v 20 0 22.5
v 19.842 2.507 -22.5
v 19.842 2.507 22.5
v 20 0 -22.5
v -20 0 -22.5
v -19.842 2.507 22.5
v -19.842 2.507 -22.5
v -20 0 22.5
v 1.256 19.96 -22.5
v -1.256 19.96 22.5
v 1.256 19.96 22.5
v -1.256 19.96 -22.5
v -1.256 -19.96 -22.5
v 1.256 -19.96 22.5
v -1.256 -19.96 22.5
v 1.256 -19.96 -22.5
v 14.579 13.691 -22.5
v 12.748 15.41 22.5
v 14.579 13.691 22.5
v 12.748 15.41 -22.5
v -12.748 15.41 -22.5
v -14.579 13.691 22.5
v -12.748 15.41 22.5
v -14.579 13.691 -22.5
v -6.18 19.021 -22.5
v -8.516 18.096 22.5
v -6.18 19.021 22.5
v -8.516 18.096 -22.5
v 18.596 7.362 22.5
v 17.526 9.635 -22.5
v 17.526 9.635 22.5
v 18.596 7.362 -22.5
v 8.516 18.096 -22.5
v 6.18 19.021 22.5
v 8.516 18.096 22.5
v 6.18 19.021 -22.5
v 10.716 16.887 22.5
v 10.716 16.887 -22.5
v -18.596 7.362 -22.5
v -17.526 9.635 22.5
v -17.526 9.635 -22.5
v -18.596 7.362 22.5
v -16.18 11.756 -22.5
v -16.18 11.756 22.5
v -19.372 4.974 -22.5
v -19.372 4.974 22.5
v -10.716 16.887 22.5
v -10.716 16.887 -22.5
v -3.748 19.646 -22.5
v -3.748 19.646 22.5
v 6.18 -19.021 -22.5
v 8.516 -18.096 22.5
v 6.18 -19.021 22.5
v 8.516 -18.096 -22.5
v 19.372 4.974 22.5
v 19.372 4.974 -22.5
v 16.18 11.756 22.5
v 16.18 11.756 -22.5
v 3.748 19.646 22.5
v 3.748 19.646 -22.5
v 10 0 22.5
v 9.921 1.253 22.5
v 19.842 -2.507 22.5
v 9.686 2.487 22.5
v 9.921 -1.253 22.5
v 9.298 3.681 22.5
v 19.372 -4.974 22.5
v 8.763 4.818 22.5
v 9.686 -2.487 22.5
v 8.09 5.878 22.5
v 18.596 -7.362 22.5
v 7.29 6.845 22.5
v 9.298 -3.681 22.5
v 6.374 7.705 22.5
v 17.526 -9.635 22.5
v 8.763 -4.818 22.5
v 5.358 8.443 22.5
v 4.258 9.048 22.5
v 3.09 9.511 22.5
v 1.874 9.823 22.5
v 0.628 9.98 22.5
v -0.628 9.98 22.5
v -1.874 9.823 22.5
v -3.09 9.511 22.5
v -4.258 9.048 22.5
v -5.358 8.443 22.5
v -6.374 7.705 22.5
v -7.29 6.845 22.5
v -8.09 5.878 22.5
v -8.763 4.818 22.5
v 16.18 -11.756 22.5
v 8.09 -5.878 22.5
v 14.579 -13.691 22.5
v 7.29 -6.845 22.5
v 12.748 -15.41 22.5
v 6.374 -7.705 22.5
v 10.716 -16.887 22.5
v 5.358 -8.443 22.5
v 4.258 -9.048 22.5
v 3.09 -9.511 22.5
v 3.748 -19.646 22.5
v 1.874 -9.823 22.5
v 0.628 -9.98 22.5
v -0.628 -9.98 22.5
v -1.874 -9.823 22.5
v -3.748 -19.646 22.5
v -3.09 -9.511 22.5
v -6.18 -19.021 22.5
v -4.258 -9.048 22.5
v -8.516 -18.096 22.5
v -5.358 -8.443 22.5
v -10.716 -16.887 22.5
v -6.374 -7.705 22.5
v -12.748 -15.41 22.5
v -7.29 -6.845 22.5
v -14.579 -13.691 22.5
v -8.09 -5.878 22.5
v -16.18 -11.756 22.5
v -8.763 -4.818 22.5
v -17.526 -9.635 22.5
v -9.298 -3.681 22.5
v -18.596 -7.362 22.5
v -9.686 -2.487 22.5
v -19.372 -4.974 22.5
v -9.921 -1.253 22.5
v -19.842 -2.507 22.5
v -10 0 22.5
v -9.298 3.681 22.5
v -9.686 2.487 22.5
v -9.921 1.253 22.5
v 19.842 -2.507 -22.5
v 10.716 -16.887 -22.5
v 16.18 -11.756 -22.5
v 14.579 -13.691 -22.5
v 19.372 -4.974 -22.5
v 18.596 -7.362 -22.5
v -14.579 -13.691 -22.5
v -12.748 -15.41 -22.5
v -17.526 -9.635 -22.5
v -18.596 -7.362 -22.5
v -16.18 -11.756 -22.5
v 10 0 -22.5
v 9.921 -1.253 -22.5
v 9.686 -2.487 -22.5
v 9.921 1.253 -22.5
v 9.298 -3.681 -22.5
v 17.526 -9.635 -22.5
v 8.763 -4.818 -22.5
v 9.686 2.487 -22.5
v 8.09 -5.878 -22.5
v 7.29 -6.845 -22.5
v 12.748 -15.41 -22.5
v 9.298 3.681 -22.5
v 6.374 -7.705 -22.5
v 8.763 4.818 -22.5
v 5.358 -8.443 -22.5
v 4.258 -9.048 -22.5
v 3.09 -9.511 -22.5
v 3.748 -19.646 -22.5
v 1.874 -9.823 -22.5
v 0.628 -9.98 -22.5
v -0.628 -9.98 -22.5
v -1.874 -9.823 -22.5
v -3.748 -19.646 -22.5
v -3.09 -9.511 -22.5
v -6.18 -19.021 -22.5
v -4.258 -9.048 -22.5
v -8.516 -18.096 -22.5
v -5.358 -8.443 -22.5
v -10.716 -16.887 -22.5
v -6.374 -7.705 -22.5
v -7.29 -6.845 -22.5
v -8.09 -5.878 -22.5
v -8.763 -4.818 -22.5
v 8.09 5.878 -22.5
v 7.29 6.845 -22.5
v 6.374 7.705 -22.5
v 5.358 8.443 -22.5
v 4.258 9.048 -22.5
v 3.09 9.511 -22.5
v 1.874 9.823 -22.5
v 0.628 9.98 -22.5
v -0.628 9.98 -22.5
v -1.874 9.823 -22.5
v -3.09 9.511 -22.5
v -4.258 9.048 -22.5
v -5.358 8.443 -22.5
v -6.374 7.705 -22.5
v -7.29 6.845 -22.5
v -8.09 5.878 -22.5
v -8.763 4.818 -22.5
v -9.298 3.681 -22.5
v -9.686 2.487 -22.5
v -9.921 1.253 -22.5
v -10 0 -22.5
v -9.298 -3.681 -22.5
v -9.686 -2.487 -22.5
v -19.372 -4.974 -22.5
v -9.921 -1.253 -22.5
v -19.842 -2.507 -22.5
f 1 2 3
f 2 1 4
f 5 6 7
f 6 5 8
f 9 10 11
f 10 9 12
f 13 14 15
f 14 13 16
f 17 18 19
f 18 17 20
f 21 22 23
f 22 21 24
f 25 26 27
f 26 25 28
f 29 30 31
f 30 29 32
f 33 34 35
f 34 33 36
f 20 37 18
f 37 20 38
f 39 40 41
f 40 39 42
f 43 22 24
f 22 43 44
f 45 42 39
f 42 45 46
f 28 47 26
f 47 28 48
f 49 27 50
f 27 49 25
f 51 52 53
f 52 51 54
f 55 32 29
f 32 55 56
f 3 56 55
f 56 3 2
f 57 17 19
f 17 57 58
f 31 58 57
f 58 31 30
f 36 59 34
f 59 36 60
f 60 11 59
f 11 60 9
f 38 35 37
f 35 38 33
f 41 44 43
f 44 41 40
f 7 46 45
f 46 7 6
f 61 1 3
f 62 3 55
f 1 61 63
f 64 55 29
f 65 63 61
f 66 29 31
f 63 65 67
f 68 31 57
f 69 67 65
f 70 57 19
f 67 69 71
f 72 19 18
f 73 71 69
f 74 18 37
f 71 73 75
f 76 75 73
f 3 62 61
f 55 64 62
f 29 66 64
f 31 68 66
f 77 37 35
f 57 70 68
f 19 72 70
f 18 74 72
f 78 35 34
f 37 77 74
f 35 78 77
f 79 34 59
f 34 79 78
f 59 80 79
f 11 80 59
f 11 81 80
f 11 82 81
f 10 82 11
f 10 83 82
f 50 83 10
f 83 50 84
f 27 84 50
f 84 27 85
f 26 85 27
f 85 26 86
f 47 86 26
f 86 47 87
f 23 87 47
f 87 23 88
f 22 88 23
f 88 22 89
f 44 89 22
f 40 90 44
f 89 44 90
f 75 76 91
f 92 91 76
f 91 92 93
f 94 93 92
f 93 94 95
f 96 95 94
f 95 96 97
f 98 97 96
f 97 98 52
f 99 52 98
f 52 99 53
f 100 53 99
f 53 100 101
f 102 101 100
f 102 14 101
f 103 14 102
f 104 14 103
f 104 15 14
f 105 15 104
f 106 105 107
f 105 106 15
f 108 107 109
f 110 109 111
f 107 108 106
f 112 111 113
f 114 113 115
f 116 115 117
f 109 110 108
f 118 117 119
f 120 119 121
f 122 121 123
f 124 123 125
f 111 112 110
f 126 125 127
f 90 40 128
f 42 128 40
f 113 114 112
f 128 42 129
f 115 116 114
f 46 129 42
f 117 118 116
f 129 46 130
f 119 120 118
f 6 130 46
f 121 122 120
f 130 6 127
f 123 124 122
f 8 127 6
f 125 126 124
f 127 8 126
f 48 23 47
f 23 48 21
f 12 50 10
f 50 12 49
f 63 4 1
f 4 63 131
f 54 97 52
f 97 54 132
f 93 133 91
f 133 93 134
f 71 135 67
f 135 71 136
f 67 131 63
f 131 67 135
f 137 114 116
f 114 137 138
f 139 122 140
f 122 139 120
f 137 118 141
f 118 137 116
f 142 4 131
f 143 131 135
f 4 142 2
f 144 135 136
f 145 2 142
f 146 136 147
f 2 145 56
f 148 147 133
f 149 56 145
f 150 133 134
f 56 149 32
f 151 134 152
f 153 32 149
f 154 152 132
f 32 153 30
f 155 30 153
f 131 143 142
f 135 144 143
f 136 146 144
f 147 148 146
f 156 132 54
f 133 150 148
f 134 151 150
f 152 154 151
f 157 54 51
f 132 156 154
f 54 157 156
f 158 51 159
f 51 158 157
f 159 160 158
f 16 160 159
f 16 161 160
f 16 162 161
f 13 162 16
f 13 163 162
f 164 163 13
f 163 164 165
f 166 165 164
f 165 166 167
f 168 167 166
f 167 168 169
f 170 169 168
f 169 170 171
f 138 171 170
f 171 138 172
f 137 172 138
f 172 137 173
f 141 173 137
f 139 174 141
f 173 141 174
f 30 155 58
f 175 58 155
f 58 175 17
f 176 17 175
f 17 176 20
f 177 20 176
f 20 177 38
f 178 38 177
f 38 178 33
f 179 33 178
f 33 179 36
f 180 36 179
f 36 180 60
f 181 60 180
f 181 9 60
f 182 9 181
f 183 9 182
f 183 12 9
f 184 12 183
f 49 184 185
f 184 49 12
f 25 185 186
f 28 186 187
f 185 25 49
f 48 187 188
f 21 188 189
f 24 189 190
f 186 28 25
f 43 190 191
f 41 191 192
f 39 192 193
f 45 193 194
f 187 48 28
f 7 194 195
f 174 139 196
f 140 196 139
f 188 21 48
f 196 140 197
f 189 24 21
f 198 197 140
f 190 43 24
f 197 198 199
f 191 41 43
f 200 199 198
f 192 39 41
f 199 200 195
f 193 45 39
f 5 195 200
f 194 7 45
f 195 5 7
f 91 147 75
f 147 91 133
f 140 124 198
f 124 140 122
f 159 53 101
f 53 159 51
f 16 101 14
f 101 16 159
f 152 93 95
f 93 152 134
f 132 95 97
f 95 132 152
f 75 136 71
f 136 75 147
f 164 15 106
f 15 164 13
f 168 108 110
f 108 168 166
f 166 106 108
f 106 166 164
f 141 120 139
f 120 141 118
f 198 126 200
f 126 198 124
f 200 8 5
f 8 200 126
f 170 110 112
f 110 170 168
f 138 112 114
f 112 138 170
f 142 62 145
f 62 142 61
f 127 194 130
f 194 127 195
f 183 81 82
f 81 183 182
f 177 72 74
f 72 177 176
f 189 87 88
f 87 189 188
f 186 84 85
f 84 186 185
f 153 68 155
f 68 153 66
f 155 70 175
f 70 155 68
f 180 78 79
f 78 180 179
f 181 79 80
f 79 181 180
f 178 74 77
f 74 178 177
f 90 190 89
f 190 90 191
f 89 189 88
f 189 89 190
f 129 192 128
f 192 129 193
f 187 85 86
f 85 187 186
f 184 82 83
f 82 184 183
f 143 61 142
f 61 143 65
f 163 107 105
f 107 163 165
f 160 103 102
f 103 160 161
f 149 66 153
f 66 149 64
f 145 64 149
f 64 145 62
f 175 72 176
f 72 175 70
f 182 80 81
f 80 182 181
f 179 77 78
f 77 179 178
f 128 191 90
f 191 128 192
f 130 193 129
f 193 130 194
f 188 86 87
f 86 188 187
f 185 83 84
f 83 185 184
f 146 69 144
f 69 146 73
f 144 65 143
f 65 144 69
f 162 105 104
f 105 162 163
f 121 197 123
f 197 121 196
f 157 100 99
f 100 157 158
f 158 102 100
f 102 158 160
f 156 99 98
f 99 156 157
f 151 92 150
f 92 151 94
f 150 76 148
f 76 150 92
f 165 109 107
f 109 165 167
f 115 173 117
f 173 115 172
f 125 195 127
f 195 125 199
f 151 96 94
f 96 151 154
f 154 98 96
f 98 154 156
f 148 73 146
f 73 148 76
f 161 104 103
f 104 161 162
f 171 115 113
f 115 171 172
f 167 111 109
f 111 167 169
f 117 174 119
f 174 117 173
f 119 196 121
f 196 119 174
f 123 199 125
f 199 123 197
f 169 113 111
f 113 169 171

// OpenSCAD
$fn = 50;


difference() {
	union() {
		translate(v = [0, 0, -22.5000000000]) {
			cylinder(h = 45, r = 20.0000000000);
		}
	}
	union() {
		translate(v = [0, 0, -100.0000000000]) {
			cylinder(h = 200, r = 10);
		}
	}
}
